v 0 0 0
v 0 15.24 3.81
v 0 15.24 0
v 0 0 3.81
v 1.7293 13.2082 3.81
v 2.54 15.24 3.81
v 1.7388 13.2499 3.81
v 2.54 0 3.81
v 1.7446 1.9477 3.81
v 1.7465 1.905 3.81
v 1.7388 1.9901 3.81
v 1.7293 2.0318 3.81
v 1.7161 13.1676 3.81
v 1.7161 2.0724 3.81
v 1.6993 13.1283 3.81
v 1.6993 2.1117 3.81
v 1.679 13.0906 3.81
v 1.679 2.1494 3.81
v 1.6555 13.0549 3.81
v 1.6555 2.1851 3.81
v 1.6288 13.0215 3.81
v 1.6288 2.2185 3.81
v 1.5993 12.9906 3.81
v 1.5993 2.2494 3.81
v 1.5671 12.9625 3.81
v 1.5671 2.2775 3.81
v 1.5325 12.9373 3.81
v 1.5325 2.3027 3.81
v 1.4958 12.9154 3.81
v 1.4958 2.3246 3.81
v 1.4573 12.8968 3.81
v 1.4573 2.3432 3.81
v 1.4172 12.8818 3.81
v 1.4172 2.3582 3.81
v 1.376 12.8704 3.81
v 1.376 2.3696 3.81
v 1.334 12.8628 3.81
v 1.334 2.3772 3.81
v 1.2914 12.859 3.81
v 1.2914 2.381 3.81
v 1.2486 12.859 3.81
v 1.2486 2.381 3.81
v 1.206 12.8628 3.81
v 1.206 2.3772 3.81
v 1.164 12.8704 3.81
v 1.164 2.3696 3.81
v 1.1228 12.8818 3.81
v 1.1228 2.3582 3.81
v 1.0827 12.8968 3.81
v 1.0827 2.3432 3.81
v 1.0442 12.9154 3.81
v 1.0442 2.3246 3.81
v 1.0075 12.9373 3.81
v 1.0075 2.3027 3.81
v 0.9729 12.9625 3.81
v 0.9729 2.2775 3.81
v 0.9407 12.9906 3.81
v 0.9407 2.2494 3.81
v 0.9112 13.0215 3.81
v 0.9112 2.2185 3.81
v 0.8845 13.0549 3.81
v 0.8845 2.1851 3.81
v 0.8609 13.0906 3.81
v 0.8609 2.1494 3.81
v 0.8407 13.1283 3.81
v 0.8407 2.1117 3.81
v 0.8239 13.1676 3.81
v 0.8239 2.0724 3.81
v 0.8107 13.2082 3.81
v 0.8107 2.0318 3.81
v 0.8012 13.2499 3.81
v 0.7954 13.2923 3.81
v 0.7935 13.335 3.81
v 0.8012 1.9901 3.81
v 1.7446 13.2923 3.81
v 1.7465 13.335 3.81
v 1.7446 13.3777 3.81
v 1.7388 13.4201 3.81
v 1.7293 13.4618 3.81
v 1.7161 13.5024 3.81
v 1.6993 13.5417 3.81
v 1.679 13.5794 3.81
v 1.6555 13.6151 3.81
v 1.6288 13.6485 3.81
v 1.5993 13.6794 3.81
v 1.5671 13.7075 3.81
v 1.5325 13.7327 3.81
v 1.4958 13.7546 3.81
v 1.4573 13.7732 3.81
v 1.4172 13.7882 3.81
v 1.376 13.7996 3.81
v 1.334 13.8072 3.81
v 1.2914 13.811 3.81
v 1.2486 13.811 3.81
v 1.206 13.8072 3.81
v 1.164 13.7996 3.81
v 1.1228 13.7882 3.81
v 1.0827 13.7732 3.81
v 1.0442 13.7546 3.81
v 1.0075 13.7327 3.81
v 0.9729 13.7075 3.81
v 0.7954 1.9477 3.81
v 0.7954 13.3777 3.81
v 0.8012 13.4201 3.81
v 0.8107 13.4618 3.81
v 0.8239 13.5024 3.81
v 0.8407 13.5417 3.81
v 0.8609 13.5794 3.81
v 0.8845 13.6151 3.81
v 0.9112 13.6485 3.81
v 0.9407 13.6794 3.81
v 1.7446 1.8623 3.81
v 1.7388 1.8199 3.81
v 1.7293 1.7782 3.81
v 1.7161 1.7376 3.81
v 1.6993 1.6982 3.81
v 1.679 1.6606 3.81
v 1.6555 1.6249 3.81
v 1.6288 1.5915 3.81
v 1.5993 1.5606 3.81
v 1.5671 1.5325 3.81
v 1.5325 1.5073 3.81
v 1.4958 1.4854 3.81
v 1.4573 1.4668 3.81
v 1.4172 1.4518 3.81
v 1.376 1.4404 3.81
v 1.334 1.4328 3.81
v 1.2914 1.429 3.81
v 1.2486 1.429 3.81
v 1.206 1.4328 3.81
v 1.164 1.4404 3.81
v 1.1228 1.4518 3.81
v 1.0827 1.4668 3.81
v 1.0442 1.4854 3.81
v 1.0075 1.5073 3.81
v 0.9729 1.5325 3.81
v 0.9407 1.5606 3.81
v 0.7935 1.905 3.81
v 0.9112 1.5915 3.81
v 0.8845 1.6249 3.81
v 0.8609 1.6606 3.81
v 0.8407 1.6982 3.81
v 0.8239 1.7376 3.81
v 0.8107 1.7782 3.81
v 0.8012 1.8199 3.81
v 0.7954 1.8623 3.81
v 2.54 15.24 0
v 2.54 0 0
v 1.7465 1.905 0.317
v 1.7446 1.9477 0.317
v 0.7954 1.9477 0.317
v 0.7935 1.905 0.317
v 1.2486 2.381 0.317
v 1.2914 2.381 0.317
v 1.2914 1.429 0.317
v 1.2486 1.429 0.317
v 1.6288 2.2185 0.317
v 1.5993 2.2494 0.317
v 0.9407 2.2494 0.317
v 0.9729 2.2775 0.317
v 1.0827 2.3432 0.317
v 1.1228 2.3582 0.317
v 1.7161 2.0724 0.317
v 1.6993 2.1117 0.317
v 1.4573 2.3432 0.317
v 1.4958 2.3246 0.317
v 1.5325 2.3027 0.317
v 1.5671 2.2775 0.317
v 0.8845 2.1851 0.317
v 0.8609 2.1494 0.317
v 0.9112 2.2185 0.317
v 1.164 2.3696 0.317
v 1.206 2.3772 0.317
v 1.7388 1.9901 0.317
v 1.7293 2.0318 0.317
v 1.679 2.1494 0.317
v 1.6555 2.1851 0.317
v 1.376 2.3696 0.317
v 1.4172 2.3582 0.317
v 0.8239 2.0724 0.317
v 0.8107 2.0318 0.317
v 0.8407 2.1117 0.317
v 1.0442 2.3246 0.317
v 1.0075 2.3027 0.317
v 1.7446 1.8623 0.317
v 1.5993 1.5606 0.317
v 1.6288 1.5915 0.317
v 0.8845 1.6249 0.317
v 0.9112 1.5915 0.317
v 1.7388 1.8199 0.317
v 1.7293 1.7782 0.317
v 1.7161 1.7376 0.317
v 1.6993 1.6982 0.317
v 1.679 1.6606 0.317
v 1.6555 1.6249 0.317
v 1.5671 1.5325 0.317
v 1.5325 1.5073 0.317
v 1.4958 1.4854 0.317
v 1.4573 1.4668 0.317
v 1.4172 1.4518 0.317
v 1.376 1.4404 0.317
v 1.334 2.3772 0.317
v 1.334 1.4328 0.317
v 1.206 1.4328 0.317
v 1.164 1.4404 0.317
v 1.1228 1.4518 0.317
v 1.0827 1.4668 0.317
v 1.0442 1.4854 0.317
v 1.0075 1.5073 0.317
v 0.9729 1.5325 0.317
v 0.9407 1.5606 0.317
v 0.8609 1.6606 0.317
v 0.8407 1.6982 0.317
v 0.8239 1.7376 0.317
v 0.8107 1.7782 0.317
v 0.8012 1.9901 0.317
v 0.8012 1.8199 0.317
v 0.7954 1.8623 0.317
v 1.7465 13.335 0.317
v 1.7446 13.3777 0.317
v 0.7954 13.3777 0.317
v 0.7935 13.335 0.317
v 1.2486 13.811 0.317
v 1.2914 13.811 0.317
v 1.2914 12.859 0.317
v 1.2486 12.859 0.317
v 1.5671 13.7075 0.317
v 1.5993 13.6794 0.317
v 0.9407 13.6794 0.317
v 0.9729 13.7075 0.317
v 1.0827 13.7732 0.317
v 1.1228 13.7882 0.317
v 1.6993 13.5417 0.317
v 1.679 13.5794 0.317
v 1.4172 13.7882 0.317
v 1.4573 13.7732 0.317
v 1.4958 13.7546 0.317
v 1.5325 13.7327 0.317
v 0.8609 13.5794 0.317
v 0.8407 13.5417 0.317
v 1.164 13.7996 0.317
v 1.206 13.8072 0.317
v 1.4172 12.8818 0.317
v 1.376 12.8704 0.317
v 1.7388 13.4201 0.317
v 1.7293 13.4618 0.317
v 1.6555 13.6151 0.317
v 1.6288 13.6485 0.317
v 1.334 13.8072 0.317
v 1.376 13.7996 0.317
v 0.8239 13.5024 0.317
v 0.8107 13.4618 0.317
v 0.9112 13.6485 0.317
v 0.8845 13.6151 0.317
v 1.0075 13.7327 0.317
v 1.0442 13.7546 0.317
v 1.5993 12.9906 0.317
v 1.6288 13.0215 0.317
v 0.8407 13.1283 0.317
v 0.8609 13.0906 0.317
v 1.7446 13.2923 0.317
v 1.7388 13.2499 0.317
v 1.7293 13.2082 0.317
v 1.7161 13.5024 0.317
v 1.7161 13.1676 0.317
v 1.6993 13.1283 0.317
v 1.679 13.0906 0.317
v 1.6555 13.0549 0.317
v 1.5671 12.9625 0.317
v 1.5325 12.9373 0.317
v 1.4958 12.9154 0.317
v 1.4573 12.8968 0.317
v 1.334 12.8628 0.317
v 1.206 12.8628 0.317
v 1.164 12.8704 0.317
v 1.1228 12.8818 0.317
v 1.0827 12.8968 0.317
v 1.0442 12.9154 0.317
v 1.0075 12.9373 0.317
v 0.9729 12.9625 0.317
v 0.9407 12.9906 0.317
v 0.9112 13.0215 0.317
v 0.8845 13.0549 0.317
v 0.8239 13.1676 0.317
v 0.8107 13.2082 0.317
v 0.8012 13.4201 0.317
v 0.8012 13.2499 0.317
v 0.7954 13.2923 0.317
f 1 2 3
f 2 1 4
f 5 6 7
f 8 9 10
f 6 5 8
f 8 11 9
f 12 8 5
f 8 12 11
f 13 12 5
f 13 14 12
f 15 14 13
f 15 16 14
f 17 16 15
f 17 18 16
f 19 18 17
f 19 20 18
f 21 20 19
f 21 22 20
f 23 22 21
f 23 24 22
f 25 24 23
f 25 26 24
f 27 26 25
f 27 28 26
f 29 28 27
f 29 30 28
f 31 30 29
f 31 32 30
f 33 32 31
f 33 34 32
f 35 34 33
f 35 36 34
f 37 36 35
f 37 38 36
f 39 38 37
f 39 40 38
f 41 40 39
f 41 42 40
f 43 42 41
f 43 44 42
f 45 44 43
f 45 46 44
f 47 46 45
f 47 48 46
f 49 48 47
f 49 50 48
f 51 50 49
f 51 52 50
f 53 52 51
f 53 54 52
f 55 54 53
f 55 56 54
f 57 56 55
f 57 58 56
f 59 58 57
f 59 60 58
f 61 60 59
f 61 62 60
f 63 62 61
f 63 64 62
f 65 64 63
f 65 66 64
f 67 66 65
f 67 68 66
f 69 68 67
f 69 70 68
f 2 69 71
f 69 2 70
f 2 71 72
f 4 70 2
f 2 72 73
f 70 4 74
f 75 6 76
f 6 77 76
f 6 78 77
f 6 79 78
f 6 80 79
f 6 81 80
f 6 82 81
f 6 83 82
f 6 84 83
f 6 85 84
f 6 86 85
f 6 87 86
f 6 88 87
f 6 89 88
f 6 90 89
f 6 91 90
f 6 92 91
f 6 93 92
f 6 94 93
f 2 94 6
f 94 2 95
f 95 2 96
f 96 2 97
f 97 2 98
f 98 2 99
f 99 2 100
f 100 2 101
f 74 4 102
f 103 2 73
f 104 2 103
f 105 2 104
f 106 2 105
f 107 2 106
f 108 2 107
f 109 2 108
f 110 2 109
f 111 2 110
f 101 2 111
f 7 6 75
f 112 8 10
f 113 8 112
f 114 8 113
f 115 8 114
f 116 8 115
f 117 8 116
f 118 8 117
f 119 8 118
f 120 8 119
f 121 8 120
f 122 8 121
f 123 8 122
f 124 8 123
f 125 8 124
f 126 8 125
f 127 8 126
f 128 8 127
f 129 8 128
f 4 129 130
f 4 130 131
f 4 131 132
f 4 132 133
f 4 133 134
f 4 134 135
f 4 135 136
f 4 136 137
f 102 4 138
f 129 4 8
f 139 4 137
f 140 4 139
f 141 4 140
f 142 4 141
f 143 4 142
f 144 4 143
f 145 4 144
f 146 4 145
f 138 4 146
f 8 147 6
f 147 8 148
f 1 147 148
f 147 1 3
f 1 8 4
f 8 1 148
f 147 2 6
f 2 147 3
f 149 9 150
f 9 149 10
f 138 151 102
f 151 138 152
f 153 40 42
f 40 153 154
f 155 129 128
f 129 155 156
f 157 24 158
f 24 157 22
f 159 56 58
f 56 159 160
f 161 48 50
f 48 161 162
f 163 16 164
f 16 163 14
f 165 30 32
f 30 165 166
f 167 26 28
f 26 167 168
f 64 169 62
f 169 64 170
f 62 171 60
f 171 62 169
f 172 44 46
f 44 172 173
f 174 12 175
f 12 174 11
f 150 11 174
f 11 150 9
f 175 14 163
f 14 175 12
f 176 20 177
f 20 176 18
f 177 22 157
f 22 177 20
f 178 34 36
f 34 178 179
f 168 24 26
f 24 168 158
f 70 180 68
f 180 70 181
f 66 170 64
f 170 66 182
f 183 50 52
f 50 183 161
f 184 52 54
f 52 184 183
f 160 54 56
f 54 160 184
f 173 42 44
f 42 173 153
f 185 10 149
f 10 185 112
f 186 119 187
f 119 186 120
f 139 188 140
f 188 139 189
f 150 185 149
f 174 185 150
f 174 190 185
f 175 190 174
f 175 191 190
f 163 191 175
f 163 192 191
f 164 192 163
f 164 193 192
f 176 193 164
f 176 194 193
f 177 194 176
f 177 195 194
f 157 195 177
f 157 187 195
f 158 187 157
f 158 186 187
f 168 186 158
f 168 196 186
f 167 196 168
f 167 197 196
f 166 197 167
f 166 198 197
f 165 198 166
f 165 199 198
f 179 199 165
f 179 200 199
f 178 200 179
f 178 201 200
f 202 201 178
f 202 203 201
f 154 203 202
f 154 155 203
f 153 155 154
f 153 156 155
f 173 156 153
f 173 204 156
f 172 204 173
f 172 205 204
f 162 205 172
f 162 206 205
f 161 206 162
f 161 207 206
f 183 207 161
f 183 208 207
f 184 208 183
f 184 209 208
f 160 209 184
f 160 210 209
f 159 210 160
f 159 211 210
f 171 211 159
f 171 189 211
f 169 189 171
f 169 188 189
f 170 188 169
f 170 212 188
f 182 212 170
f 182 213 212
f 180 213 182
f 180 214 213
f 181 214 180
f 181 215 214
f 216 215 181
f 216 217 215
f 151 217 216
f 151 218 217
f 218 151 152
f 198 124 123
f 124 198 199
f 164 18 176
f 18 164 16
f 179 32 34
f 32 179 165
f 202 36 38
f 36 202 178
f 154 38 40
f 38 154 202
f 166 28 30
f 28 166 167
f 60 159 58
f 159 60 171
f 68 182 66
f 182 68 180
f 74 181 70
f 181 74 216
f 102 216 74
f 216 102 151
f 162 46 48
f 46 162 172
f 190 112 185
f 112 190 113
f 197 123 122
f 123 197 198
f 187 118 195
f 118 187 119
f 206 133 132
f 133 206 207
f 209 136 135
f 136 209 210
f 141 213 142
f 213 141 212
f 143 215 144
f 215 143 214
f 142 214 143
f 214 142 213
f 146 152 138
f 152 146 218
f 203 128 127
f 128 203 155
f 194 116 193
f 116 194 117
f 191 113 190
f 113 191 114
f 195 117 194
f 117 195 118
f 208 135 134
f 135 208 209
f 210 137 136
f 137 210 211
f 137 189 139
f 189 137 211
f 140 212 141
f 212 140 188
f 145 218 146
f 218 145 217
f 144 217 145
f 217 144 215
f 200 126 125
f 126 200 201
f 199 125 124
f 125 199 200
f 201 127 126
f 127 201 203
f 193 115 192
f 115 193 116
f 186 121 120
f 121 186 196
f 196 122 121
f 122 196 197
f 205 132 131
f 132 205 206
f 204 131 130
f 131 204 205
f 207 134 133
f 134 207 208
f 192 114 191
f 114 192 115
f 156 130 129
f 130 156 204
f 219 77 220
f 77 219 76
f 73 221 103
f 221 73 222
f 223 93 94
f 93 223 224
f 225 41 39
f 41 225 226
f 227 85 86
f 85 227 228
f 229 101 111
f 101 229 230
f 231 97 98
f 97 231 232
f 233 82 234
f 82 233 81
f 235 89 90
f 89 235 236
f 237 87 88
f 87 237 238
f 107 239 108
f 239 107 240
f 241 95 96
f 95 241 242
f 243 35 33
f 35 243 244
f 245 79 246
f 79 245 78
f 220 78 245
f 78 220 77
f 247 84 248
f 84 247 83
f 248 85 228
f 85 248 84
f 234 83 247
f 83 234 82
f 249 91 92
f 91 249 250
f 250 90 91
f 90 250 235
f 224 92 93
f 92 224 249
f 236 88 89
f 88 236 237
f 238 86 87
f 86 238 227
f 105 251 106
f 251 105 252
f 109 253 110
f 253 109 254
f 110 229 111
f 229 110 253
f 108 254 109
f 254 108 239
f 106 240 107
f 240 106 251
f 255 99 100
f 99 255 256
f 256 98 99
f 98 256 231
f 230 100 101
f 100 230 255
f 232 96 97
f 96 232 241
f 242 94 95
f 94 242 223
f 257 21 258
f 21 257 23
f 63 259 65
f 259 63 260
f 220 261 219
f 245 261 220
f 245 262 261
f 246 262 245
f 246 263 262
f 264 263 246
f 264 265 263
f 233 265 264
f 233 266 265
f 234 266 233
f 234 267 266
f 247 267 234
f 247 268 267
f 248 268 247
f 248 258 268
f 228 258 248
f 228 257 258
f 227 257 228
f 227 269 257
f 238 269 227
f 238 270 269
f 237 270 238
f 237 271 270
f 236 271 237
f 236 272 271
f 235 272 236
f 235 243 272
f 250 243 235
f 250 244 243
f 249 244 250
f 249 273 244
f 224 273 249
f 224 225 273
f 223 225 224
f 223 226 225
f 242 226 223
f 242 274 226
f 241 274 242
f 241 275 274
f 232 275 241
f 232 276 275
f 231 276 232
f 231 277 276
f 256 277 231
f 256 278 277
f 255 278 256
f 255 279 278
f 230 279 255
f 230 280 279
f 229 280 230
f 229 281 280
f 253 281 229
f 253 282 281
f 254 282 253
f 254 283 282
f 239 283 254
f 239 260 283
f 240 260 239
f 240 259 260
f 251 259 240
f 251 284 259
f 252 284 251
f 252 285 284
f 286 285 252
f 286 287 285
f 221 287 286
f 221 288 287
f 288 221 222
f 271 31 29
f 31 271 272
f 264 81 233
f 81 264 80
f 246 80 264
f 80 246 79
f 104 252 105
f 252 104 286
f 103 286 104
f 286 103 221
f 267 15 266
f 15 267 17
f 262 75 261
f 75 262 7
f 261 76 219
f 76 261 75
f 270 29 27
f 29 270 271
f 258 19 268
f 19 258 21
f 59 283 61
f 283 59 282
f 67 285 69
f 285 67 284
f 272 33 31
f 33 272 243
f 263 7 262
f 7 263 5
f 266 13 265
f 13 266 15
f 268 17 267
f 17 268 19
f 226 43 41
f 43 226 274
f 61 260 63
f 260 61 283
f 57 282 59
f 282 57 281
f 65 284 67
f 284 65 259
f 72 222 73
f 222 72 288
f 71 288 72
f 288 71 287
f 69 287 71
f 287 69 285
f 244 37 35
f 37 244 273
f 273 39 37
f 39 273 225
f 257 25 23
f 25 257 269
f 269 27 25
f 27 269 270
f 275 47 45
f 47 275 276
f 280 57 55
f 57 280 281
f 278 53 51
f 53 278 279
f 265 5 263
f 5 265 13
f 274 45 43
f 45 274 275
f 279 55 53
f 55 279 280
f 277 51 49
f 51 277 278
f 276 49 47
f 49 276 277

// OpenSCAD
// Part   : Component 8 - Side Railing
// Author : Rafi Khan
// Team   : Innovator

difference(){
	cube(size=[2.54, 15.24, 3.81], center=false);

	// Right Peg Insert
	translate([1.27, 1.905, 0.317]){
		cylinder(h=3.493, d=0.953, center=false, $fn=70);
	}

	// Right Peg Insert
	translate([1.27, 13.335, 0.317]){
		cylinder(h=3.493, d=0.953, center=false, $fn=70);
	}
}
